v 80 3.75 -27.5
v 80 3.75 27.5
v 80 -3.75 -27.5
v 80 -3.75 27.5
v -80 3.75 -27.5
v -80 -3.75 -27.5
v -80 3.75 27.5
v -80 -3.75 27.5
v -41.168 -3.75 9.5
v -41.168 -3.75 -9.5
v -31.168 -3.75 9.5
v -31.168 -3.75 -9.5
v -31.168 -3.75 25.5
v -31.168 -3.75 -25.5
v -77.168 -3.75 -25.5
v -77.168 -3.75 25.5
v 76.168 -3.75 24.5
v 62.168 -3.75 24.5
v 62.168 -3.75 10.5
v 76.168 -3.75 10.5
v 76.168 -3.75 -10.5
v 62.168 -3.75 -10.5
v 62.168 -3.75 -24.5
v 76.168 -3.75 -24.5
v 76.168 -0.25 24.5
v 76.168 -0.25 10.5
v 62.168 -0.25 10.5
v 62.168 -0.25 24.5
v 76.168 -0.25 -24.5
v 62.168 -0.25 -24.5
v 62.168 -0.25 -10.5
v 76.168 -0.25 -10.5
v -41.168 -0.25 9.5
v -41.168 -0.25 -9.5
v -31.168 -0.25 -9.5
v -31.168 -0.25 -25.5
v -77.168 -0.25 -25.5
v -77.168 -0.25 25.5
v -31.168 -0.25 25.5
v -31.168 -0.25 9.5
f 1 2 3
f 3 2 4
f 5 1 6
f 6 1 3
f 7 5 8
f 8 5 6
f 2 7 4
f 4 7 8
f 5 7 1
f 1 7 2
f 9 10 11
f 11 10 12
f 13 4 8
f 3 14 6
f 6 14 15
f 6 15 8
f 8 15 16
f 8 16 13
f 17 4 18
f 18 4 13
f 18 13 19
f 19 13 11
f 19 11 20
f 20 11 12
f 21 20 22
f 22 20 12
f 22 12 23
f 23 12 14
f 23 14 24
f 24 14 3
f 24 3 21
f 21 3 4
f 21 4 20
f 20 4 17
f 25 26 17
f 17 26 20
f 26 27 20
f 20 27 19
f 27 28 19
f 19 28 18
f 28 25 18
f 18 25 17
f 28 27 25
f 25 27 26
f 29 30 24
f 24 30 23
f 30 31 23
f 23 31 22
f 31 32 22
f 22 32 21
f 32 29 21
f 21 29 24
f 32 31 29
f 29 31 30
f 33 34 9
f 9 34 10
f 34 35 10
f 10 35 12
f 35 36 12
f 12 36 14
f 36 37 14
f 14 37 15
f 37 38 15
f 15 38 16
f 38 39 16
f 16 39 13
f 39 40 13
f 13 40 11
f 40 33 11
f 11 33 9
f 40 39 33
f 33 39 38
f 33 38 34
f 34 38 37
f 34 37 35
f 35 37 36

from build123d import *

# Parameters (mm, degrees)
SKETCH1_W           = 160
SKETCH1_H           = 55
BOSS_EXTRUDE1_DEPTH = 3.75
SKETCH2_W           = 14
SKETCH2_H           = 14
CUT_EXTRUDE1_DEPTH  = 3.5


with BuildPart() as part:
    # Sketch1 → Boss-Extrude1 (new, symmetric)
    with BuildSketch(Plane(origin=(0, 0, 0), x_dir=(1, 0, 0), z_dir=(0, 1, 0))):
        Rectangle(SKETCH1_W, SKETCH1_H)
    extrude(amount=BOSS_EXTRUDE1_DEPTH, both=True)

    # Sketch2 → Cut-Extrude1 (cut)
    with BuildSketch(Plane.XZ.offset(3.75)):
        with Locations((69.168154724, 17.5)):
            Rectangle(SKETCH2_W, SKETCH2_H)
        with Locations((69.168154724, -17.5)):
            Rectangle(SKETCH2_W, SKETCH2_H)
        Polygon((-41.168154724, -9.5), (-31.168154724, -9.5), (-31.168154724, -25.5), (-77.168154724, -25.5), (-77.168154724, 25.5), (-31.168154724, 25.5), (-31.168154724, 9.5), (-41.168154724, 9.5), align=None)
    extrude(amount=-CUT_EXTRUDE1_DEPTH, mode=Mode.SUBTRACT)


solid = part.part
